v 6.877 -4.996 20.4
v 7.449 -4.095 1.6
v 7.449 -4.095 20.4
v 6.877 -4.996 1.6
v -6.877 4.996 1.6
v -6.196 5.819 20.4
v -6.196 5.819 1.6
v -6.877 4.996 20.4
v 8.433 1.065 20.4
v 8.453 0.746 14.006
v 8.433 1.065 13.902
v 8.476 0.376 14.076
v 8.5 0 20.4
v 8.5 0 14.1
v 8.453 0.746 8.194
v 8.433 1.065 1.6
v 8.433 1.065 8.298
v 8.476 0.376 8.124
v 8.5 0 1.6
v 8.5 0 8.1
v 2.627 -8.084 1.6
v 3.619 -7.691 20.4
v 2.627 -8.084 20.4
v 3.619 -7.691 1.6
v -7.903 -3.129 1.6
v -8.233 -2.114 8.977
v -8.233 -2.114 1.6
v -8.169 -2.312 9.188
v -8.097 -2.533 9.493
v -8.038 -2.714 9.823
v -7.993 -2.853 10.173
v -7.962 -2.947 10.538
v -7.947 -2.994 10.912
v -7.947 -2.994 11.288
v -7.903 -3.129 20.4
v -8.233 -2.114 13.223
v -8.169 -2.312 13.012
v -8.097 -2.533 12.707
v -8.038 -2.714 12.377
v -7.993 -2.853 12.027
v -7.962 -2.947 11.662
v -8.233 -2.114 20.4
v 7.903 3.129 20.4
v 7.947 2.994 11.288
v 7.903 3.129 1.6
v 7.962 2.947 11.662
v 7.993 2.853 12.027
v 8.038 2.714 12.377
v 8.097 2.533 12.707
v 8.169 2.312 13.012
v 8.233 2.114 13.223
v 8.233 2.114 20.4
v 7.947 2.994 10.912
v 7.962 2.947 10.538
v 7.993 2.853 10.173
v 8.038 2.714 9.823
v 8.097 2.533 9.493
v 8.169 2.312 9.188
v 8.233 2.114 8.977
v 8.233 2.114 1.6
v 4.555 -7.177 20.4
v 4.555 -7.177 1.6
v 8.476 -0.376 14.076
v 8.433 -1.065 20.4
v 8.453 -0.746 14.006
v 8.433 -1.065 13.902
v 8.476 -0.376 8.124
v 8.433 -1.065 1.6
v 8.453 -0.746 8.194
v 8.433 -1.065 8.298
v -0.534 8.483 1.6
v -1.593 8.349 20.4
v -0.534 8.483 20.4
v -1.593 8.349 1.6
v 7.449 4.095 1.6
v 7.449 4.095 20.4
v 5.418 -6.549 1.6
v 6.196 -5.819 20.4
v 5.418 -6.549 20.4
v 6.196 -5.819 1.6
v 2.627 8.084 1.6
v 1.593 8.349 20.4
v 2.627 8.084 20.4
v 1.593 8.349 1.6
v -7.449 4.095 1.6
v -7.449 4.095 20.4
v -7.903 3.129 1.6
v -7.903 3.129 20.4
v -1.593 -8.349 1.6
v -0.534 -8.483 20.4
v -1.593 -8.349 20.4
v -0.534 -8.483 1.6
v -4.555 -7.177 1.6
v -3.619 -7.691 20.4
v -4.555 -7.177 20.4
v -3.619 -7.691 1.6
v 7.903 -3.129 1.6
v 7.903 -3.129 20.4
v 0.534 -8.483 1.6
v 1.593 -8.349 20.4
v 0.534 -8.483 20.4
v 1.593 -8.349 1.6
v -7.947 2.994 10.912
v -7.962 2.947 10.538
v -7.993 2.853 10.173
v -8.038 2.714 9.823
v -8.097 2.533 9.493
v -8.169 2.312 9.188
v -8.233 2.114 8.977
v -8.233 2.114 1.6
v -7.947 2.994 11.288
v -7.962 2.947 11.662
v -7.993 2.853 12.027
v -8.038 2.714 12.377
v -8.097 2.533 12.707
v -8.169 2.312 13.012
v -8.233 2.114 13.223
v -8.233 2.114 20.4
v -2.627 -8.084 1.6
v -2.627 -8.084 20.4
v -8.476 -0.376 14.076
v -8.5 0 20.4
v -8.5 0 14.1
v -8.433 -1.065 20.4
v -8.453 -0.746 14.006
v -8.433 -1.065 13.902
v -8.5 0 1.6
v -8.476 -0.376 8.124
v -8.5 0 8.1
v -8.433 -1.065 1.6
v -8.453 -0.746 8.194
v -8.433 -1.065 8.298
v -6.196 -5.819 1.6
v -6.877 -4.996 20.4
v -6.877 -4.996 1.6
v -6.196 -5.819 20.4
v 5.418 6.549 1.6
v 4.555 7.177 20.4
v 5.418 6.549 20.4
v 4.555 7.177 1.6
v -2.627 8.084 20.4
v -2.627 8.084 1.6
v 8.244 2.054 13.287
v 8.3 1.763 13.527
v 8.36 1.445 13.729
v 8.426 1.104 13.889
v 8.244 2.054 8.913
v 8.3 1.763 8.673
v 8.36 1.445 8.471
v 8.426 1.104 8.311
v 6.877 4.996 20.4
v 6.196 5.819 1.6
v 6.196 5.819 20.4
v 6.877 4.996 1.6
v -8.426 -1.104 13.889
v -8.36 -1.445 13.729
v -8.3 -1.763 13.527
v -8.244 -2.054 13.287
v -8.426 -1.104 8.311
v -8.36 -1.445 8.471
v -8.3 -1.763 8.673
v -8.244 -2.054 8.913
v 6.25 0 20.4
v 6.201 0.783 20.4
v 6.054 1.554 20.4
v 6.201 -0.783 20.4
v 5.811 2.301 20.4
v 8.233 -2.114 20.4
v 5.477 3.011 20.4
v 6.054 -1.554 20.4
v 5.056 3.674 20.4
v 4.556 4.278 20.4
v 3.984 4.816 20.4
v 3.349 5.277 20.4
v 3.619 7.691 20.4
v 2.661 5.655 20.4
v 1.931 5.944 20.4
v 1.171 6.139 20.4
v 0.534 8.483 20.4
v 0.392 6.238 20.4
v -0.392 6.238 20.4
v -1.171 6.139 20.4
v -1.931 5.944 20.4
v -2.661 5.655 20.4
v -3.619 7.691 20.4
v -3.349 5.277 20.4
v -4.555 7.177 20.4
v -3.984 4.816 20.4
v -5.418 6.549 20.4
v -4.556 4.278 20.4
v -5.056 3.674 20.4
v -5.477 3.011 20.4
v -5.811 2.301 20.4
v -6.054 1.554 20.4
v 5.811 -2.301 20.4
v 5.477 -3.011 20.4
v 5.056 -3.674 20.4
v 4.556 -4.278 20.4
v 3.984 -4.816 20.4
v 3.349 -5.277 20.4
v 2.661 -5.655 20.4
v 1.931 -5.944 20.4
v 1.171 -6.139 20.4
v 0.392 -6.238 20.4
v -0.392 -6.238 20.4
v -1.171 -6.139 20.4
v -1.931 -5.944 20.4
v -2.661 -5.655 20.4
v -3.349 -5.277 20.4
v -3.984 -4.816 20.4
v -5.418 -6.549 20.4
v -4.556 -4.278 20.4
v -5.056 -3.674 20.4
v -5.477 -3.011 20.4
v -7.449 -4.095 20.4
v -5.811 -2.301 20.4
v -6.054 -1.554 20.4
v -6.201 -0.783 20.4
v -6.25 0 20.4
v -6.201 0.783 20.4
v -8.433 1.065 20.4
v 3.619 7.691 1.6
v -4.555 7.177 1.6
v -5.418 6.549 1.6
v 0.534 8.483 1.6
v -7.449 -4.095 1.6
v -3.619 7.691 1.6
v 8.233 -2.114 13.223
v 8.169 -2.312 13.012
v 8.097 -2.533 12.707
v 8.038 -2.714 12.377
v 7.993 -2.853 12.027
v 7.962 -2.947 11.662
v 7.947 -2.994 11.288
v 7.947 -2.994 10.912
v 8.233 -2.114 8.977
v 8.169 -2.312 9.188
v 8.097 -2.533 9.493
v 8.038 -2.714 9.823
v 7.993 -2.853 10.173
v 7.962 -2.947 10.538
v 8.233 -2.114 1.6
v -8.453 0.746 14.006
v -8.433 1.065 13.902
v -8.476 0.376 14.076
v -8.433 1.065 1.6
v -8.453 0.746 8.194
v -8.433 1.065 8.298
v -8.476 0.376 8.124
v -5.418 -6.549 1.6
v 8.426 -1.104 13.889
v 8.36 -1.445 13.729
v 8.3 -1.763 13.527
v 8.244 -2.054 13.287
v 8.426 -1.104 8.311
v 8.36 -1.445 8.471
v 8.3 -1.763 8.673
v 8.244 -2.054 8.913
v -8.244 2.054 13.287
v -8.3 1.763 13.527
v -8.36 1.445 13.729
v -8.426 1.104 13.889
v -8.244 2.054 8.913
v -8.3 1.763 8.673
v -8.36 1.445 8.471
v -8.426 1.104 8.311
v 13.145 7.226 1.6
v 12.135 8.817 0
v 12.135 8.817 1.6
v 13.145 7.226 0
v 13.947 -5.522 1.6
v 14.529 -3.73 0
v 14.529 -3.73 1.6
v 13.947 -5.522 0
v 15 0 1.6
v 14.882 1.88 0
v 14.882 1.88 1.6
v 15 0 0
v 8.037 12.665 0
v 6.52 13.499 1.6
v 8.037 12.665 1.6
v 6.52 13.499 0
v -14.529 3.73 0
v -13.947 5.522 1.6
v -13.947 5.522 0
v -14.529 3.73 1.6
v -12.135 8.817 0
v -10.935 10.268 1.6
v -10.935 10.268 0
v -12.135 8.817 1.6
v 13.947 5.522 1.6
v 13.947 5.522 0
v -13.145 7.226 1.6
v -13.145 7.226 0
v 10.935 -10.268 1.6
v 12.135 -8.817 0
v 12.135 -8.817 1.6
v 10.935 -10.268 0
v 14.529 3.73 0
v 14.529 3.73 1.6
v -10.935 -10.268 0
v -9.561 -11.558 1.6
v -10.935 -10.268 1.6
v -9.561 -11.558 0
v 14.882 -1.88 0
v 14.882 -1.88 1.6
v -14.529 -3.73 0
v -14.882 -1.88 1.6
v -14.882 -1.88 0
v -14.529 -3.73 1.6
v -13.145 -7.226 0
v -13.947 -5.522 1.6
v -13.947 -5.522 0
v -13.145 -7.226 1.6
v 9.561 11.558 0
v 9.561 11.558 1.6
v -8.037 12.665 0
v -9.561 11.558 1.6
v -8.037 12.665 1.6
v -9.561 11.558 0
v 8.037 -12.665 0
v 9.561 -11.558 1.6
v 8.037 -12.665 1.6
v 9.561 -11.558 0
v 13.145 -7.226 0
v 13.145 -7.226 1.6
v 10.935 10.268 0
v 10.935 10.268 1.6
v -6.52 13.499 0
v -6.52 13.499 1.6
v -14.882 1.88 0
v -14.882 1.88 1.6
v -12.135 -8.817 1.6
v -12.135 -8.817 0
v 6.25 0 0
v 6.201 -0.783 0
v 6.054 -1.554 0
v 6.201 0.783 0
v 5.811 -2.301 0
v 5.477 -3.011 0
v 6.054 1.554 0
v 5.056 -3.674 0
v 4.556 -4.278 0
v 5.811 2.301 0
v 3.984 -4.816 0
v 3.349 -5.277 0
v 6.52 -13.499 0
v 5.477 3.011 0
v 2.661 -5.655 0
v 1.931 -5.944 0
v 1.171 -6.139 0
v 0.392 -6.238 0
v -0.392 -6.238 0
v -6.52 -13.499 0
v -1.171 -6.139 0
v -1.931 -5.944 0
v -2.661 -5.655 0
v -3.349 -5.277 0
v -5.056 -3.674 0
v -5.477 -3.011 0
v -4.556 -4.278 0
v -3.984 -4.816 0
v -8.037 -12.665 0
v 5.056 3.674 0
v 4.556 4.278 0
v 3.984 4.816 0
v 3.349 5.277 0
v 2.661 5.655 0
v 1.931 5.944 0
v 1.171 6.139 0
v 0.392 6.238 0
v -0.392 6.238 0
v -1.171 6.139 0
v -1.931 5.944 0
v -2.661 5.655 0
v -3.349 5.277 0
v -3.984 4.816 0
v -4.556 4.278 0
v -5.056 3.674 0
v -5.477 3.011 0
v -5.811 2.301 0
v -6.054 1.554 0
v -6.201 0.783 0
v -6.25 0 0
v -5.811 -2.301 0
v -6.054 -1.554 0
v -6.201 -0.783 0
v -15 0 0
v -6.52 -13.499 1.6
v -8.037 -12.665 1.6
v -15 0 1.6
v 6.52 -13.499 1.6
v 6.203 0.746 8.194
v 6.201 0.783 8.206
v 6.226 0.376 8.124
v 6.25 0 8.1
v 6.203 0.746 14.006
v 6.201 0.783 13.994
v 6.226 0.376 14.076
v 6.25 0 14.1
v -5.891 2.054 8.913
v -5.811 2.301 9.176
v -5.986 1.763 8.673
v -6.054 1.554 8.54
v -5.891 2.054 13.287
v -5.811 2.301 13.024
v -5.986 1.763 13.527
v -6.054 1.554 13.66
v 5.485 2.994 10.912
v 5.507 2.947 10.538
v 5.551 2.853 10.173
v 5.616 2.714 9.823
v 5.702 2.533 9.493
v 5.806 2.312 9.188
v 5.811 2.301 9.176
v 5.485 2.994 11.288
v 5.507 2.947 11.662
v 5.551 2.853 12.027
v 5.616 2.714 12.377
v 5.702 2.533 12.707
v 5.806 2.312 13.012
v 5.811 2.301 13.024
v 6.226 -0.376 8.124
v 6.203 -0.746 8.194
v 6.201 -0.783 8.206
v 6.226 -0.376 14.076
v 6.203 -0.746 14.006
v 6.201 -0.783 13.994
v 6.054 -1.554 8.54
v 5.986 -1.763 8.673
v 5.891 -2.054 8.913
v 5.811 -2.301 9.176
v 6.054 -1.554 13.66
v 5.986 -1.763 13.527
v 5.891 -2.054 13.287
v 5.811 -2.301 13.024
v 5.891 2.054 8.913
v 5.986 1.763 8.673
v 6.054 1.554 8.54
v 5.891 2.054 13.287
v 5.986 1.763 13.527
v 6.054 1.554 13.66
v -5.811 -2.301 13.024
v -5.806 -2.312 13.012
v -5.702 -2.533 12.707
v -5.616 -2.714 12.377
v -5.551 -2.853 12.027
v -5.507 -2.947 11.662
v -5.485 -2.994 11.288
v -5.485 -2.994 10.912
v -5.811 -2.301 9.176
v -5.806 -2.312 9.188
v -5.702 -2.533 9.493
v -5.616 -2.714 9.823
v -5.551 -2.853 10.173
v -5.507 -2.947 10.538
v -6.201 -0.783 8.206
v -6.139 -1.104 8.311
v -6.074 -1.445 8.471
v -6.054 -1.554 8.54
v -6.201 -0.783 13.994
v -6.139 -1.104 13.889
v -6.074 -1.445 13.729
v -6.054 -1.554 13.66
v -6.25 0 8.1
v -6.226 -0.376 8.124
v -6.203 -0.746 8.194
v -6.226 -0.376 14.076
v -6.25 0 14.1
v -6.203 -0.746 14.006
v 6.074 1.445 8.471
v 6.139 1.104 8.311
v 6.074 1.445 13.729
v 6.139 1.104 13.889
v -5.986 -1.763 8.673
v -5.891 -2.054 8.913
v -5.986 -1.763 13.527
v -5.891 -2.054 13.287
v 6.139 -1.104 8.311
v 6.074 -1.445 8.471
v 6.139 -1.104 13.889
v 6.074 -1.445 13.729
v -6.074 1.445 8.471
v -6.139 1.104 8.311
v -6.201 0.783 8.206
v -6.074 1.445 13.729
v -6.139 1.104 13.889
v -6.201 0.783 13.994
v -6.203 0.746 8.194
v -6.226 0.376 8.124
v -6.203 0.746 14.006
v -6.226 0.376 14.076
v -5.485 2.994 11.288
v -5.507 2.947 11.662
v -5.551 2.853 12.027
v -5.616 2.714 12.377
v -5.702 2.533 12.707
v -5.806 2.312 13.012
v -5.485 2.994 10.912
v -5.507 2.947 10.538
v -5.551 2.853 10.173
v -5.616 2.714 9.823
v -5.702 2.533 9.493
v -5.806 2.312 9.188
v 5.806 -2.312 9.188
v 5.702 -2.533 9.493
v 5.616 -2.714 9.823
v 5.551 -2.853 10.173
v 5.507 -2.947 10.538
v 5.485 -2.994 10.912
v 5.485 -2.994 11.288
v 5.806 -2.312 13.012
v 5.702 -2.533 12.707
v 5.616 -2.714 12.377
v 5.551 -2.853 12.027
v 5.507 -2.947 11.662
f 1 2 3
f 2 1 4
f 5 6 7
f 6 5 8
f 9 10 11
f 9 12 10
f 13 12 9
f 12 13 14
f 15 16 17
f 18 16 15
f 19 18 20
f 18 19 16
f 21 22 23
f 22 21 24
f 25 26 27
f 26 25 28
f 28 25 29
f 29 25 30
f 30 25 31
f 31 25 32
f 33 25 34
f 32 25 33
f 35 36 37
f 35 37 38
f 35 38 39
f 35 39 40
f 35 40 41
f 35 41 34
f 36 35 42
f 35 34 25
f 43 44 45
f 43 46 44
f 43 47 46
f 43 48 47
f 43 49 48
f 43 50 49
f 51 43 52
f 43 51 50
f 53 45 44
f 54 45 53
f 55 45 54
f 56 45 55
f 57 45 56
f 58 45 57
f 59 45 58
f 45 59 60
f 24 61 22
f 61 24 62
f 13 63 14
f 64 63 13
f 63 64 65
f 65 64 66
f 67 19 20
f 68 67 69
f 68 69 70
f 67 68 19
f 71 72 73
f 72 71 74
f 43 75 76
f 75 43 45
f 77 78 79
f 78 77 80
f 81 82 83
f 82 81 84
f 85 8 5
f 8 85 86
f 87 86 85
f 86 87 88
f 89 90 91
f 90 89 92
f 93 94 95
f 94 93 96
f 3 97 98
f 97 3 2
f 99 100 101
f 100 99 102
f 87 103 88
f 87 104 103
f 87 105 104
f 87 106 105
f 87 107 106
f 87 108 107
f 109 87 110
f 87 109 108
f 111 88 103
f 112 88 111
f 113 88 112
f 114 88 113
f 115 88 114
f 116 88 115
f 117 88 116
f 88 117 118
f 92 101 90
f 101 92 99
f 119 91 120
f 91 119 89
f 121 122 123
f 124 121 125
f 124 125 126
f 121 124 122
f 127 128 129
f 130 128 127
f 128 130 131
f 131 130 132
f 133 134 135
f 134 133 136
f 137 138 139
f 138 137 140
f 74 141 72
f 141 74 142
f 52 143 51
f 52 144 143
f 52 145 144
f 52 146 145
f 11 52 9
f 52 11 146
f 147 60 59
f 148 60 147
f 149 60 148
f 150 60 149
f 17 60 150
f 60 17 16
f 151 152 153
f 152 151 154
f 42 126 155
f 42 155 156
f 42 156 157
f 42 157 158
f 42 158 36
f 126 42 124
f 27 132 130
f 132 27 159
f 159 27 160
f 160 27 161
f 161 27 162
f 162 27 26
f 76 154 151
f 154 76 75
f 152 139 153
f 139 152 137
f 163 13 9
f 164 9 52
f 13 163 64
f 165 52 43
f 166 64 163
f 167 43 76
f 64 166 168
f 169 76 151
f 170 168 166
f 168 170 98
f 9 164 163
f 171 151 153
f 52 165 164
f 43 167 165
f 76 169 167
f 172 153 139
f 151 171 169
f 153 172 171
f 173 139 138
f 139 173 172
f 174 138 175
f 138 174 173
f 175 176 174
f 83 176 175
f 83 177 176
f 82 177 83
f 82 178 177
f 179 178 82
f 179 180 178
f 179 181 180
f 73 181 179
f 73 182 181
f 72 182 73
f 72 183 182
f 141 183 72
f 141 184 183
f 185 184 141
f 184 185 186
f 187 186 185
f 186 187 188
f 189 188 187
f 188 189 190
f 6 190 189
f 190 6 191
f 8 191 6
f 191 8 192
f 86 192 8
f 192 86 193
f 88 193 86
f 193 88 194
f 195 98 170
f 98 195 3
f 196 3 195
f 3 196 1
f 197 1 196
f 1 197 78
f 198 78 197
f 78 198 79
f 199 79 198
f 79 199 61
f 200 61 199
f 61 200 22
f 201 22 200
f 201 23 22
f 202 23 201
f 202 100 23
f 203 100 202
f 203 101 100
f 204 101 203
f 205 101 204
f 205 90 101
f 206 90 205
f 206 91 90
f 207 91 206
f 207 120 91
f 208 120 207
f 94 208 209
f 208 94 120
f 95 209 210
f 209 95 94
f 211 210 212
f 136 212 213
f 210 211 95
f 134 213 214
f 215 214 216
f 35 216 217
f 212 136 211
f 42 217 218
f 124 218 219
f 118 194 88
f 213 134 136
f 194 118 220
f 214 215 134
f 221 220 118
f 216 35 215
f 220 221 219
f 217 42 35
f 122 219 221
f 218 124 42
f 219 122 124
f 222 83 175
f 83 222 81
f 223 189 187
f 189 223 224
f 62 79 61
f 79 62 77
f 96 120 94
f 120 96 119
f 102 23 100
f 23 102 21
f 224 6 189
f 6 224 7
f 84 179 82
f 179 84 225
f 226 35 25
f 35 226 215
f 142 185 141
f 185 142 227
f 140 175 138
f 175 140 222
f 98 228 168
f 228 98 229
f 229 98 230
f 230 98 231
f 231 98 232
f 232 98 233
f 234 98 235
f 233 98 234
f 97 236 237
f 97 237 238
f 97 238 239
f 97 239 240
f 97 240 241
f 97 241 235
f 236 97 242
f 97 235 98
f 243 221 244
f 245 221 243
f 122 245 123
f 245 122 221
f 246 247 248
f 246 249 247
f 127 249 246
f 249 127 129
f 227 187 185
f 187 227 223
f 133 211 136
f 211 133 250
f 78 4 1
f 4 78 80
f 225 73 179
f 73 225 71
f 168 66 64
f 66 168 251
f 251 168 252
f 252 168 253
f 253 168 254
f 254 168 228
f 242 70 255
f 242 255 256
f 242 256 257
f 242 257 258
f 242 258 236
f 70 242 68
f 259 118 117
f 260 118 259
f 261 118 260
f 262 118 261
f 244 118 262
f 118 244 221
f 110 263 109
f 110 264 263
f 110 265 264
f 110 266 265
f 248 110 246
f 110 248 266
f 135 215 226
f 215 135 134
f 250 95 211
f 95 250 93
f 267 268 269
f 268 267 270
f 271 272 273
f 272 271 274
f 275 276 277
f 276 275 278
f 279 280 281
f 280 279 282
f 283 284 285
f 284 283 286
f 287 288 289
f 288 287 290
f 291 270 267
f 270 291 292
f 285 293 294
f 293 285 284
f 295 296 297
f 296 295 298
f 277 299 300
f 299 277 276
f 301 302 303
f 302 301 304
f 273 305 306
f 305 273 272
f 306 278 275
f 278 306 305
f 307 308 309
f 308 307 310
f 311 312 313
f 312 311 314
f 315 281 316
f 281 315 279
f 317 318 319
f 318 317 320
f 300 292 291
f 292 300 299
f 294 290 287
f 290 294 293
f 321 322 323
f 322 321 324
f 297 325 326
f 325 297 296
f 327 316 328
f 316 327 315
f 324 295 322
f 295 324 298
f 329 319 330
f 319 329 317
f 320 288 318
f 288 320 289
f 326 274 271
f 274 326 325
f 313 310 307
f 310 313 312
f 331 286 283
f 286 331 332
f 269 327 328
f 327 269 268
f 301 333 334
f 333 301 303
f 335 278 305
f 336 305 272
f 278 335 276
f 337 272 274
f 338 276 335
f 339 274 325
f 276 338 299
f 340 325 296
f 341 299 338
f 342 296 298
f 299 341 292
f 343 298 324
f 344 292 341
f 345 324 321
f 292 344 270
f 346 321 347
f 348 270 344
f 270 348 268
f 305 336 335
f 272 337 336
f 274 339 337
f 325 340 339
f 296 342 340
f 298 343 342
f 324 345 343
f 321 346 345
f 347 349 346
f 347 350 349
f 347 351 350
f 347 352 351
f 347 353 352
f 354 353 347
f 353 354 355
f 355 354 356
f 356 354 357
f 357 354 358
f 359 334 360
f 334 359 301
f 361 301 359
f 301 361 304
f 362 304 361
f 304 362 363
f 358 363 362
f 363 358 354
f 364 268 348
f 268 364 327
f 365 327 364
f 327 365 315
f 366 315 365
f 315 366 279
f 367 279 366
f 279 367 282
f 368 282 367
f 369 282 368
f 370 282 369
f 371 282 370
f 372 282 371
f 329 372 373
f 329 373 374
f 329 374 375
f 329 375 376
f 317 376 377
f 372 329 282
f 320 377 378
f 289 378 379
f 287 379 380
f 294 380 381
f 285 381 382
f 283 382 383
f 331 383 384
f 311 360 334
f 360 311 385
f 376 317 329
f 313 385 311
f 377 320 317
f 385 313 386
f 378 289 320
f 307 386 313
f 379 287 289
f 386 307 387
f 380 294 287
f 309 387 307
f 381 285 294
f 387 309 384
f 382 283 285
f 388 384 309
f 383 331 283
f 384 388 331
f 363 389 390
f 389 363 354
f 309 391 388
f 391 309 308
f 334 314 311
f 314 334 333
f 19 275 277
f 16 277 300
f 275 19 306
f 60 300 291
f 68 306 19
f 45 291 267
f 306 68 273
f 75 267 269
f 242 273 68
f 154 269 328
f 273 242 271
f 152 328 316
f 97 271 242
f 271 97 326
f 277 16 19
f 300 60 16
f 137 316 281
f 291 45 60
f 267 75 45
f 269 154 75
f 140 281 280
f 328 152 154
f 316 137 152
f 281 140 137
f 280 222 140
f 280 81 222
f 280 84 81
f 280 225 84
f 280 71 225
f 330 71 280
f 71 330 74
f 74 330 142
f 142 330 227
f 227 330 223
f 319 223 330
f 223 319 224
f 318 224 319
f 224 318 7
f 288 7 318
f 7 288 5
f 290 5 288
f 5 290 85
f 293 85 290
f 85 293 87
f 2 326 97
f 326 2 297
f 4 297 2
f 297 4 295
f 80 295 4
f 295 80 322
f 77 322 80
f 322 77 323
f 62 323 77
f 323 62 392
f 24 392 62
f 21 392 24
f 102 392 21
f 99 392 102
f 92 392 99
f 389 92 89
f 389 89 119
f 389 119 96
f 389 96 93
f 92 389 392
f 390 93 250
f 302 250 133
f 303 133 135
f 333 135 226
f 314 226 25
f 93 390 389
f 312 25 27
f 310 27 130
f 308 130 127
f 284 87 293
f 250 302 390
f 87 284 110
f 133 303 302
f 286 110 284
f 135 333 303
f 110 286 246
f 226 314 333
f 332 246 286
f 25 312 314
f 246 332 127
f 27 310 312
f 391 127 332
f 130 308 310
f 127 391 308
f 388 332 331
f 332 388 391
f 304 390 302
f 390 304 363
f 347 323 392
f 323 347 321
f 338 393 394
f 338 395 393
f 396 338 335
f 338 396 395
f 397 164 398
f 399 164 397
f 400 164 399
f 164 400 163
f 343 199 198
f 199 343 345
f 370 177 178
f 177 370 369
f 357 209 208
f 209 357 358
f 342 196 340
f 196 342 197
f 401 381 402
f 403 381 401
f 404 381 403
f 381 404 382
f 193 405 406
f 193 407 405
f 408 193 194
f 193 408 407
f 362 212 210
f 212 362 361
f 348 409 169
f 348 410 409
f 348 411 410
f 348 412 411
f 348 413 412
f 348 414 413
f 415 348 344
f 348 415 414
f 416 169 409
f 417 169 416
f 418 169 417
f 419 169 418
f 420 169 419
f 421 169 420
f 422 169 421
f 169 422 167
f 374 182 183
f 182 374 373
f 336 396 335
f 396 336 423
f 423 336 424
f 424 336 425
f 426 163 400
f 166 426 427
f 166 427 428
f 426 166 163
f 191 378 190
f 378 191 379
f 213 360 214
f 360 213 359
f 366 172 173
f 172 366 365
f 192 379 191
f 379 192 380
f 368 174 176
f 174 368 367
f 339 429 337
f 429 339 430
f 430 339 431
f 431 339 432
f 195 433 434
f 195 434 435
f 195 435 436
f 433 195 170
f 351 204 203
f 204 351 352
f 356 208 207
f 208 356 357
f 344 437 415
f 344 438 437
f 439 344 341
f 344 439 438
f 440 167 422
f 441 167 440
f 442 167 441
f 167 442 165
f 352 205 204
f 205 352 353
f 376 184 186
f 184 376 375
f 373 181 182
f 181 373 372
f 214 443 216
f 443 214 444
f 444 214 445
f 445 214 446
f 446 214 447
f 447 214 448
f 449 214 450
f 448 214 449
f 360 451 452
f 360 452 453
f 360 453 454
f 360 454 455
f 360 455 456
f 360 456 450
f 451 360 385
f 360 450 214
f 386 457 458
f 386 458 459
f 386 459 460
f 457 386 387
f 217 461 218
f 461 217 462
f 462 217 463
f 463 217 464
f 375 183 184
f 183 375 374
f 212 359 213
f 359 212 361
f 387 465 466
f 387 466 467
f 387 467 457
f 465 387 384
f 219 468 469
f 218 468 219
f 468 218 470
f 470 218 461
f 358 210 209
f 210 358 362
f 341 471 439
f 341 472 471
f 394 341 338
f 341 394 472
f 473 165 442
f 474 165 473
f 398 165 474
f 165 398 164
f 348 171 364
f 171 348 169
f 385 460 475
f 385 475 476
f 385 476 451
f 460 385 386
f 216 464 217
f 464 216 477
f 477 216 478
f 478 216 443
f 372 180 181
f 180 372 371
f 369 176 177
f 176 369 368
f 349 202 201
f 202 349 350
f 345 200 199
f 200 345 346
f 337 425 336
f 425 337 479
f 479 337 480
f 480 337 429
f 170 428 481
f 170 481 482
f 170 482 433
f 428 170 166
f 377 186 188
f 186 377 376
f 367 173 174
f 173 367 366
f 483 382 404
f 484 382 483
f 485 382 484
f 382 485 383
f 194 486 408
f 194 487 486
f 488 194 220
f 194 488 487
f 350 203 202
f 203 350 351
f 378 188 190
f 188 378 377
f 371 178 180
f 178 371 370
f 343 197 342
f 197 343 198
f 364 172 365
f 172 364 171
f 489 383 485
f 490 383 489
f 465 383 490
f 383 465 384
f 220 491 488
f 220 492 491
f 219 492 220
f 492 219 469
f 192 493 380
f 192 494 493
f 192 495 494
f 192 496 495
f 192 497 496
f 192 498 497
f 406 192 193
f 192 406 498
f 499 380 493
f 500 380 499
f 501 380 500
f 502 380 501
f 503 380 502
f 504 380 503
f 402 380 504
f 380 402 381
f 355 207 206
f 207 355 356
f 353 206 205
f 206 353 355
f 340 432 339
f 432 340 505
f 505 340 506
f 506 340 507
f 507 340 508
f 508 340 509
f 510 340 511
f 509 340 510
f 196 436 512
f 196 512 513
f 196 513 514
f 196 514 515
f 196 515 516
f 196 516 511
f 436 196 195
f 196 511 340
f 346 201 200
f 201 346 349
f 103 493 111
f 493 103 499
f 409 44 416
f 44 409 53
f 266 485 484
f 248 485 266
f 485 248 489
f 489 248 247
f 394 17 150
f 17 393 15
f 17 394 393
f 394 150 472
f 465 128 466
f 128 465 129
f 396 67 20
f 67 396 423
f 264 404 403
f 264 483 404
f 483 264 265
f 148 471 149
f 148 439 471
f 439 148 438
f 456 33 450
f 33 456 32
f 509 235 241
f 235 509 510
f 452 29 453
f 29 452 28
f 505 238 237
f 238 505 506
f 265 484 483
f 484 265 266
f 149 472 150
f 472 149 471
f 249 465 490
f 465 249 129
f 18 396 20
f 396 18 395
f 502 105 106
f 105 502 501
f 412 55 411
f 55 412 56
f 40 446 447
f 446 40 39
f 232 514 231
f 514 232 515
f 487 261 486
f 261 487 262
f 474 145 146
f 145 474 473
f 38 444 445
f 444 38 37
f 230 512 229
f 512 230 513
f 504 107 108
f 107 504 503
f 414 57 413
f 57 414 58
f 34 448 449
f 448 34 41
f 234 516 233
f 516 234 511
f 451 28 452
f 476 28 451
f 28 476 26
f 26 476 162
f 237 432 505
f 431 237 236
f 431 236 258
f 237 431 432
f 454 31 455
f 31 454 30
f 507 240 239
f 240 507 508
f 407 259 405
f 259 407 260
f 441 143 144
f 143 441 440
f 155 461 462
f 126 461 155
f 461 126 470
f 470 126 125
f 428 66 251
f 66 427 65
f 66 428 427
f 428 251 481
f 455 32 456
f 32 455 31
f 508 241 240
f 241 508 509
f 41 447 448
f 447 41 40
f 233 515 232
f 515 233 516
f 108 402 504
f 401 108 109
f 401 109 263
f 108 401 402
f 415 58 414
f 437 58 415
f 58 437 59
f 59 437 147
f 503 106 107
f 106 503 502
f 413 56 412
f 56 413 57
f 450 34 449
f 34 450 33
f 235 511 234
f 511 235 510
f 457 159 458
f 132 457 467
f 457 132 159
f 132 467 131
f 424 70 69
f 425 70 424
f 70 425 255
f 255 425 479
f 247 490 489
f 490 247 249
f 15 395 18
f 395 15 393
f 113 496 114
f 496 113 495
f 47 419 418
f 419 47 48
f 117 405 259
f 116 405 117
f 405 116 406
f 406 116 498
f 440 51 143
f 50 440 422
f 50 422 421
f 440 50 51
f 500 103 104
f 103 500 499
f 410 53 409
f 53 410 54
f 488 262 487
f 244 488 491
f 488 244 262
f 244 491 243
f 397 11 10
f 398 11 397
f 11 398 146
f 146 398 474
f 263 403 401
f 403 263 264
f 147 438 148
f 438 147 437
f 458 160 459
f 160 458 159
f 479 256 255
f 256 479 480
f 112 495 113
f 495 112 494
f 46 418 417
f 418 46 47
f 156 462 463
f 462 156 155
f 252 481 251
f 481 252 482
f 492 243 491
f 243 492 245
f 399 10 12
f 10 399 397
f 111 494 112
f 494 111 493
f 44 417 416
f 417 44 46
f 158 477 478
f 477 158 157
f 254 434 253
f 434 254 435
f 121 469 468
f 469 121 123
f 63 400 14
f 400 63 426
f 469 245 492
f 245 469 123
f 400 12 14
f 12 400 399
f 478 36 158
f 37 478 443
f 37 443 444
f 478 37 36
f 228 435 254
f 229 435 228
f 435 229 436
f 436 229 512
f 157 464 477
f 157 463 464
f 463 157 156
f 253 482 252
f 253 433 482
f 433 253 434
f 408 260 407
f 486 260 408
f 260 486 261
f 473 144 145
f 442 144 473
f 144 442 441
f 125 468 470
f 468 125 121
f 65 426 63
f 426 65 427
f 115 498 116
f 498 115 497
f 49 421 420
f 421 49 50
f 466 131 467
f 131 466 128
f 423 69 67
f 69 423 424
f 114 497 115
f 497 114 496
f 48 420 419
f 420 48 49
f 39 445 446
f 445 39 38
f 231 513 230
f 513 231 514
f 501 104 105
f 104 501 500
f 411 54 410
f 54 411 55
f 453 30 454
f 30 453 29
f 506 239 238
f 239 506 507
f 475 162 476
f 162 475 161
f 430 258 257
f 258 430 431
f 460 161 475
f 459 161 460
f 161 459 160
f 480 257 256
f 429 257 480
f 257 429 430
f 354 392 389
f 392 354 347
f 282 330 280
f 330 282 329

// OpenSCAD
// an adapter for culture tubes to HACH 2100Q

$fn=50;
slicerwall=0.8;

//glass culture tubes
diamtube=12+0.5;  

//lip
diamlip=18+6+6;
hlip=slicerwall*2;

//OD600 space 
diam=17;
depth=18+hlip; 

//light pipe 
diaml=6;


translate([0,0,hlip/2]) difference(){
    //body of adapter
    translate([0,0,0]) difference(){
        union(){
            //body
            translate([0,0,depth/2]) cylinder(h=depth,d=diam, center=true);
            //lip
            cylinder(h=hlip, d=diamlip, center=true);
        };
    //space for tube
    cylinder(h=depth*10, d=diamtube, center=true);
    //lightpath (corect for minkowski of 1/2)
    translate([0,0,(depth)/2+1/2]) rotate([0,90,0]) cylinder(diam*2, diaml/2, diaml/2, center=true);
       
     };
 
     
    //subtract to make alignment edges 
    //from OD600 box
    w=diamlip;
    h=18;
    l=26;
    //box subtracted from box to get edges
    translate([0,0,0]) difference(){
        cube([2*w,2*l,h-10], center=true);
        minkowski()
        {
            cube([w,l,h], center=true);
            sphere(1/2);
        }
    };
};
